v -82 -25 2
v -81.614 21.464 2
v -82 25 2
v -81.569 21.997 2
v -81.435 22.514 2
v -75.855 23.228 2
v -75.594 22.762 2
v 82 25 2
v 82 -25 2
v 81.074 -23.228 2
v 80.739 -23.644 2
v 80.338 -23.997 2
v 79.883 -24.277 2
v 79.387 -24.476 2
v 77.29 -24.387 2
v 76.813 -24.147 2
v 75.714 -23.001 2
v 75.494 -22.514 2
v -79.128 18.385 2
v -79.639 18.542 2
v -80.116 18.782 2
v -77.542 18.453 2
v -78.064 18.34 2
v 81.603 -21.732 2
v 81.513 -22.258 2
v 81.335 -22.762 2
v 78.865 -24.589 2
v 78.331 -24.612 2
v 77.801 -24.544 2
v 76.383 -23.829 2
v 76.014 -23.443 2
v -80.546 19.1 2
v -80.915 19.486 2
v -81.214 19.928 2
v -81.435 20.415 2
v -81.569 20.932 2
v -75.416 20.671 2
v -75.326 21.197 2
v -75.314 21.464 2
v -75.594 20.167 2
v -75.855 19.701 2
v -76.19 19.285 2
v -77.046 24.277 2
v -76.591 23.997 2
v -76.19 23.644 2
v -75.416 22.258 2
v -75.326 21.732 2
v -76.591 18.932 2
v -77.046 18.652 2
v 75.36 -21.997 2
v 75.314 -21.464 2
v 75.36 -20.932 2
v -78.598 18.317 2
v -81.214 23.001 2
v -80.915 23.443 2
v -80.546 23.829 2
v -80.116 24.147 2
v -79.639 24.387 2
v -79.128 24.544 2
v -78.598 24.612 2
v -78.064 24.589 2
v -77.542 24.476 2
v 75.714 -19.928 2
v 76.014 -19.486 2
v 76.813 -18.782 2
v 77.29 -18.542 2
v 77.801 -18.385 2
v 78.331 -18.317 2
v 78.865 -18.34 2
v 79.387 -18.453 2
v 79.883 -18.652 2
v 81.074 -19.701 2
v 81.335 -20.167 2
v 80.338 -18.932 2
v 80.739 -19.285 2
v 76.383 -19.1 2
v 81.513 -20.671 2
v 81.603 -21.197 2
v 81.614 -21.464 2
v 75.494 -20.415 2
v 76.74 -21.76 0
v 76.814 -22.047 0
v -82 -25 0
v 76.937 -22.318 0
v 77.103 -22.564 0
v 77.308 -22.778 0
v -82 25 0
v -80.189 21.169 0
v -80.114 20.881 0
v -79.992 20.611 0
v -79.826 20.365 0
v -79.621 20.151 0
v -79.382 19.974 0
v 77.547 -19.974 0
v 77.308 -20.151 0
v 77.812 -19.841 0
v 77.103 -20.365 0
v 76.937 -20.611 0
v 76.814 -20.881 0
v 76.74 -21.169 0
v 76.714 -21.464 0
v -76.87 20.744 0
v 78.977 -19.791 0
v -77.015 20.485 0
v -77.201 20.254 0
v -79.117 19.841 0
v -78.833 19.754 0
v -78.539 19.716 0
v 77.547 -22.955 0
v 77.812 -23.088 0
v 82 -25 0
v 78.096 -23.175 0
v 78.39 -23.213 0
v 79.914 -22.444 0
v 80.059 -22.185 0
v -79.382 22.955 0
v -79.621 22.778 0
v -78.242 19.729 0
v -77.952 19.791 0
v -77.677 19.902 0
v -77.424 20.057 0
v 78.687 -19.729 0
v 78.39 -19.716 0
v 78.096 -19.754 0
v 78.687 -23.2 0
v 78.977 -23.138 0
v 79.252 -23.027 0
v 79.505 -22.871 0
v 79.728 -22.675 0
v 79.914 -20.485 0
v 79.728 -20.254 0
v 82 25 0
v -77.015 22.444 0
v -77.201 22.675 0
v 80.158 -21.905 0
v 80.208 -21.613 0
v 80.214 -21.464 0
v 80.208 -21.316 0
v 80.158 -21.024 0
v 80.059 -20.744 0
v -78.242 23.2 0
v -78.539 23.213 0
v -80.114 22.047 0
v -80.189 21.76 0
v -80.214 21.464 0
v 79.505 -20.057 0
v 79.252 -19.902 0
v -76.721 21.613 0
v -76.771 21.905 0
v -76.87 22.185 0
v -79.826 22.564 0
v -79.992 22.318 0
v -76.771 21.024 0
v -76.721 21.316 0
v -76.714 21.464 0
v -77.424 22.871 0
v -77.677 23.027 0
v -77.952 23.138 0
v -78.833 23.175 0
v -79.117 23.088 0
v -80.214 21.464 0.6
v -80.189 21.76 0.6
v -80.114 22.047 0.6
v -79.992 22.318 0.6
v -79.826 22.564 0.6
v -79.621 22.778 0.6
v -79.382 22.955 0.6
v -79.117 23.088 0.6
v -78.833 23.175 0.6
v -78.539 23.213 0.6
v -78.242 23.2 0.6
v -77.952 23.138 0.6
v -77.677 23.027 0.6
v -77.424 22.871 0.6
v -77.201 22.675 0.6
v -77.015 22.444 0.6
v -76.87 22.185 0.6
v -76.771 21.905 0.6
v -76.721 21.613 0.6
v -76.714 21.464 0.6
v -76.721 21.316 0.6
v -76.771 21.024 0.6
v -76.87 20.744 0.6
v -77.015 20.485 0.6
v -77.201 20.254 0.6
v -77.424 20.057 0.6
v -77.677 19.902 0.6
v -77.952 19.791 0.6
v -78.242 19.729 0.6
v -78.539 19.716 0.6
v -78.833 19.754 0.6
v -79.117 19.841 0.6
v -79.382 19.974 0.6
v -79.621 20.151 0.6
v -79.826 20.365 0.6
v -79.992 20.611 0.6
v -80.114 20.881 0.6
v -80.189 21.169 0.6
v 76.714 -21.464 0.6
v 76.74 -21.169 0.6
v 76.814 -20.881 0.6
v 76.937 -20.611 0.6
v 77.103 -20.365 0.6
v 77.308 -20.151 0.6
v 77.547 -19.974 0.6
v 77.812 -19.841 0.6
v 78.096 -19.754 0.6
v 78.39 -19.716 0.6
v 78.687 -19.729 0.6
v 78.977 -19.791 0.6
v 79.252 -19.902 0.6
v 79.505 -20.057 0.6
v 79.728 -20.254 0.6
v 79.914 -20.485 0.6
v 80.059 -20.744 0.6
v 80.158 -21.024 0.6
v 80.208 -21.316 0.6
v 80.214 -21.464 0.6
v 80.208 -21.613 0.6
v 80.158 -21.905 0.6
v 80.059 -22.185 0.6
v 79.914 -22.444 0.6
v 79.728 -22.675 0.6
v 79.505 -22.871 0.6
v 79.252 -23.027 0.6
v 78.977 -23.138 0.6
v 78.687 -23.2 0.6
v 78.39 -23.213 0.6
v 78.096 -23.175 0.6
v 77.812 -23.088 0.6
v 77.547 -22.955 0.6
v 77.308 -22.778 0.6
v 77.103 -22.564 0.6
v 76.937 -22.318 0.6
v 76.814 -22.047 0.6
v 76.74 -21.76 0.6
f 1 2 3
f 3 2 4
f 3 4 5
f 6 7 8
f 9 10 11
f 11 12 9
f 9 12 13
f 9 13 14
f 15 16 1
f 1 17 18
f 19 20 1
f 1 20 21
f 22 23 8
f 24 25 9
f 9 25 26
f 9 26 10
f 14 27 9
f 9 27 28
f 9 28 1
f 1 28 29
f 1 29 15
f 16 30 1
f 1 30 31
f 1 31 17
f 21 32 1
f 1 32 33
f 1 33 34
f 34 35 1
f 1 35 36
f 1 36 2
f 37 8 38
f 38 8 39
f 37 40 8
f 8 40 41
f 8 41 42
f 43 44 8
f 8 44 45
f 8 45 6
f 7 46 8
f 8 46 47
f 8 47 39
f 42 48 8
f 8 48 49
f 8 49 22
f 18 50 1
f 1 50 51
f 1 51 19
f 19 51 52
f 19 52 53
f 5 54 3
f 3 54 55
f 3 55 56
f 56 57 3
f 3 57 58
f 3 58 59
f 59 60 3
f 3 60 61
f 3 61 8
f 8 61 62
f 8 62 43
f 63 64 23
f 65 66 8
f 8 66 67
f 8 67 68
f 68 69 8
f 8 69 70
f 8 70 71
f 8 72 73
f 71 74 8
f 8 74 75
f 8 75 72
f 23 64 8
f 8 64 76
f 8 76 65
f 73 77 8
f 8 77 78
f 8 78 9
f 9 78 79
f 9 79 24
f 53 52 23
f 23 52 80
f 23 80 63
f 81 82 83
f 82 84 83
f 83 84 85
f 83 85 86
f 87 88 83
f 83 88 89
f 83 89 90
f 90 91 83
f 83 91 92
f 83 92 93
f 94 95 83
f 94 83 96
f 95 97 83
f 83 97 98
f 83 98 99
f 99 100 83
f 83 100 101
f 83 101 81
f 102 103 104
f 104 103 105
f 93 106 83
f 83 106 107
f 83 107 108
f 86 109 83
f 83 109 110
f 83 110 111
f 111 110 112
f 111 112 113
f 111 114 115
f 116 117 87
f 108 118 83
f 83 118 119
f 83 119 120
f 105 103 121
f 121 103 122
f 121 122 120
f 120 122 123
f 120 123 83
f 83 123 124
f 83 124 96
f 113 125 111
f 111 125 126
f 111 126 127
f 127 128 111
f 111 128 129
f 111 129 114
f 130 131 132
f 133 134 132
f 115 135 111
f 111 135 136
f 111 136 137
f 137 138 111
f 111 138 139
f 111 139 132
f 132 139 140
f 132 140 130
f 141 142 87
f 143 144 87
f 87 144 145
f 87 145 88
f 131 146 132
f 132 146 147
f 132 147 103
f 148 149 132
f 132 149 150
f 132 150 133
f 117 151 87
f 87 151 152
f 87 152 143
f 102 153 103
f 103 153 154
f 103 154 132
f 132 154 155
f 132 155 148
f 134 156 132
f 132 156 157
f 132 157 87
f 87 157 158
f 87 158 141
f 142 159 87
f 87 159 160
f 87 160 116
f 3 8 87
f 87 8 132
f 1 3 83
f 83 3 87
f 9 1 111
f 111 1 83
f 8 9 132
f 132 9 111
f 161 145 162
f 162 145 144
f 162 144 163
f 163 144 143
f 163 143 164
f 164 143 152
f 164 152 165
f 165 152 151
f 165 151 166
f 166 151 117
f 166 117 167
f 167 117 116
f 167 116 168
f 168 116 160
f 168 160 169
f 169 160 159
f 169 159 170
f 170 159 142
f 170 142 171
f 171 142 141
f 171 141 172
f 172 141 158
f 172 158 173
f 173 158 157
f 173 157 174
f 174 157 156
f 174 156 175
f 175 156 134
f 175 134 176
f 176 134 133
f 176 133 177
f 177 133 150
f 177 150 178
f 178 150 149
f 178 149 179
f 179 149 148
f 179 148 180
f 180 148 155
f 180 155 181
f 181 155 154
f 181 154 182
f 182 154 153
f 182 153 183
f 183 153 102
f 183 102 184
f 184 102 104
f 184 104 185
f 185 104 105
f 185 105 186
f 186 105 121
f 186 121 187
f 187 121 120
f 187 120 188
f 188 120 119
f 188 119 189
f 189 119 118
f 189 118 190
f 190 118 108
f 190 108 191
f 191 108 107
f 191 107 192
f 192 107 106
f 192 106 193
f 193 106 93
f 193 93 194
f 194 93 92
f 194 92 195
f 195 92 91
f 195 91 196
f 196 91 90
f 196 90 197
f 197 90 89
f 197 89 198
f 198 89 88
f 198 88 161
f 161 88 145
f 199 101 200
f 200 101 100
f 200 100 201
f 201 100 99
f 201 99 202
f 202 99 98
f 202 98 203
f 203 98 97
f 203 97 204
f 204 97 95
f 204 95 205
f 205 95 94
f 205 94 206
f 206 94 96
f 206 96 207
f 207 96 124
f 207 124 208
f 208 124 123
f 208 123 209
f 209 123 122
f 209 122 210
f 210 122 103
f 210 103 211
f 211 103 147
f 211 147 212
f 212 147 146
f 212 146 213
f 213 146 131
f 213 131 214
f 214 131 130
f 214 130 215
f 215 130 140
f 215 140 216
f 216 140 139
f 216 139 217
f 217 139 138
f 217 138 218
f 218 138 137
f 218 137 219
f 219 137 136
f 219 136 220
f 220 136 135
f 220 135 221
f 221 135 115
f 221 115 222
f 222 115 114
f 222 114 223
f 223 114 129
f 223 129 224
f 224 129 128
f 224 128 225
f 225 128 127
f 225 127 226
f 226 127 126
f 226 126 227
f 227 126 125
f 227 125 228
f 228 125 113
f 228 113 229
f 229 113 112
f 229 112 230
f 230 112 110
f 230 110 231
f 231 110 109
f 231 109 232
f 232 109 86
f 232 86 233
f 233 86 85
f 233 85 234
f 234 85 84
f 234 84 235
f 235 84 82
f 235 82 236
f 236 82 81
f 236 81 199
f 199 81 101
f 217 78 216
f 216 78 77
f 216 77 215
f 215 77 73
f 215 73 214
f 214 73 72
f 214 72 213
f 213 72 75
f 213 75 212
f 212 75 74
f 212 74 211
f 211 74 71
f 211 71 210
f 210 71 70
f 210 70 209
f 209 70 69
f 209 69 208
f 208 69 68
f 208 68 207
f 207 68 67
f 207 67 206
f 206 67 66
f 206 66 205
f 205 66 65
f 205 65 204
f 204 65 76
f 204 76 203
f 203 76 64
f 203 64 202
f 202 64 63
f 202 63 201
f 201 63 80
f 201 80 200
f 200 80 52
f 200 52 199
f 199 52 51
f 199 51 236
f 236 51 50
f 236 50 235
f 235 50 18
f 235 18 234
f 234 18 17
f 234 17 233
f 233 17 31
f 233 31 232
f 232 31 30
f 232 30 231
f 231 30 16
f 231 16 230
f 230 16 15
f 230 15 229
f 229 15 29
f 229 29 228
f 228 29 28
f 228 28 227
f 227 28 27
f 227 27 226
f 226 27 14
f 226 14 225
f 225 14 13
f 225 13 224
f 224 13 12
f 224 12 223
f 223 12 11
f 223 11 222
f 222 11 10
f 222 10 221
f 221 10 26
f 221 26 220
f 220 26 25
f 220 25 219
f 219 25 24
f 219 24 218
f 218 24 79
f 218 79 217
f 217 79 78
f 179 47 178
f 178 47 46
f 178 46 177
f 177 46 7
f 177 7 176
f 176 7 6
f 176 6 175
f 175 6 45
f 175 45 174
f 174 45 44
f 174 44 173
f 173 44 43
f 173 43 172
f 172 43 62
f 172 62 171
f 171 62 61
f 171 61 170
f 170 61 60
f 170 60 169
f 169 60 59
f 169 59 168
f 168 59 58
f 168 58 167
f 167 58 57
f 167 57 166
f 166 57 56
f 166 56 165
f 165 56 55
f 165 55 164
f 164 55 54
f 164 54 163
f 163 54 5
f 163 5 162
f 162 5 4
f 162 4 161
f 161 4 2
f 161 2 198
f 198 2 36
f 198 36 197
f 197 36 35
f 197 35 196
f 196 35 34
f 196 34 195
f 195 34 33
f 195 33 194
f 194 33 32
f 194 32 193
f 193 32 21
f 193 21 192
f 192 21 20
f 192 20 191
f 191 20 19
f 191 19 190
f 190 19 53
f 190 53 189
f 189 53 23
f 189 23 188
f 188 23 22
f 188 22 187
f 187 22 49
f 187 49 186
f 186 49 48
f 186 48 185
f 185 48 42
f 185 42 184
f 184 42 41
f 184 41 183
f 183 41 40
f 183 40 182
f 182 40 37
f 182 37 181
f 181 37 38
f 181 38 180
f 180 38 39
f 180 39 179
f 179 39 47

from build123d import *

# Parameters (mm, degrees)
SKETCH1_R                                      = 1.75
BOSS_EXTRUDE1_DEPTH                            = 2
CSK_FOR_M3_FLAT_HEAD_MACHINE_SCREW1_AT_2_COUNT = 2
CSK_FOR_M3_FLAT_HEAD_MACHINE_SCREW1_AT_2_PITCH = 162.694753992


with BuildPart() as part:
    # Sketch1 → Boss-Extrude1 (new body)
    with BuildSketch(Plane.XY):
        Polygon((82, 14), (82, 25), (-82, 25), (-82, -25), (82, -25), (82, -14), align=None)
        with Locations((78.464466094, -21.464466094)):
            Circle(SKETCH1_R, mode=Mode.SUBTRACT)
        with Locations((-78.464466094, 21.464466094)):
            Circle(SKETCH1_R, mode=Mode.SUBTRACT)
    extrude(amount=BOSS_EXTRUDE1_DEPTH)

    # Sketch2 → CSK for M3 Flat Head Machine Screw1 (revolve, cut)
    with BuildSketch(Plane(origin=(-78.464466094, 21.464466094, 2), x_dir=(0, -1, 0), z_dir=(1, 0, 0))):
        Polygon((0, 0), (0, 2), (1.7, 2), (1.7, 1.45), (3.15, 0), align=None)
    csk_for_m3_flat_head_machine_screw1 = revolve(axis=Axis((-78.464466094, 21.464466094, 8.35), (0, 0, -1)), mode=Mode.SUBTRACT)

    # CSK for M3 Flat Head Machine Screw1 at 2: CSK for M3 Flat Head Machine Screw1 ×2
    with Locations(*[Vector(0.9645604934246289, -0.26386180952240207, 0) * (i * CSK_FOR_M3_FLAT_HEAD_MACHINE_SCREW1_AT_2_PITCH) for i in range(1, CSK_FOR_M3_FLAT_HEAD_MACHINE_SCREW1_AT_2_COUNT)]):
        add(csk_for_m3_flat_head_machine_screw1, mode=Mode.SUBTRACT)


solid = part.part
